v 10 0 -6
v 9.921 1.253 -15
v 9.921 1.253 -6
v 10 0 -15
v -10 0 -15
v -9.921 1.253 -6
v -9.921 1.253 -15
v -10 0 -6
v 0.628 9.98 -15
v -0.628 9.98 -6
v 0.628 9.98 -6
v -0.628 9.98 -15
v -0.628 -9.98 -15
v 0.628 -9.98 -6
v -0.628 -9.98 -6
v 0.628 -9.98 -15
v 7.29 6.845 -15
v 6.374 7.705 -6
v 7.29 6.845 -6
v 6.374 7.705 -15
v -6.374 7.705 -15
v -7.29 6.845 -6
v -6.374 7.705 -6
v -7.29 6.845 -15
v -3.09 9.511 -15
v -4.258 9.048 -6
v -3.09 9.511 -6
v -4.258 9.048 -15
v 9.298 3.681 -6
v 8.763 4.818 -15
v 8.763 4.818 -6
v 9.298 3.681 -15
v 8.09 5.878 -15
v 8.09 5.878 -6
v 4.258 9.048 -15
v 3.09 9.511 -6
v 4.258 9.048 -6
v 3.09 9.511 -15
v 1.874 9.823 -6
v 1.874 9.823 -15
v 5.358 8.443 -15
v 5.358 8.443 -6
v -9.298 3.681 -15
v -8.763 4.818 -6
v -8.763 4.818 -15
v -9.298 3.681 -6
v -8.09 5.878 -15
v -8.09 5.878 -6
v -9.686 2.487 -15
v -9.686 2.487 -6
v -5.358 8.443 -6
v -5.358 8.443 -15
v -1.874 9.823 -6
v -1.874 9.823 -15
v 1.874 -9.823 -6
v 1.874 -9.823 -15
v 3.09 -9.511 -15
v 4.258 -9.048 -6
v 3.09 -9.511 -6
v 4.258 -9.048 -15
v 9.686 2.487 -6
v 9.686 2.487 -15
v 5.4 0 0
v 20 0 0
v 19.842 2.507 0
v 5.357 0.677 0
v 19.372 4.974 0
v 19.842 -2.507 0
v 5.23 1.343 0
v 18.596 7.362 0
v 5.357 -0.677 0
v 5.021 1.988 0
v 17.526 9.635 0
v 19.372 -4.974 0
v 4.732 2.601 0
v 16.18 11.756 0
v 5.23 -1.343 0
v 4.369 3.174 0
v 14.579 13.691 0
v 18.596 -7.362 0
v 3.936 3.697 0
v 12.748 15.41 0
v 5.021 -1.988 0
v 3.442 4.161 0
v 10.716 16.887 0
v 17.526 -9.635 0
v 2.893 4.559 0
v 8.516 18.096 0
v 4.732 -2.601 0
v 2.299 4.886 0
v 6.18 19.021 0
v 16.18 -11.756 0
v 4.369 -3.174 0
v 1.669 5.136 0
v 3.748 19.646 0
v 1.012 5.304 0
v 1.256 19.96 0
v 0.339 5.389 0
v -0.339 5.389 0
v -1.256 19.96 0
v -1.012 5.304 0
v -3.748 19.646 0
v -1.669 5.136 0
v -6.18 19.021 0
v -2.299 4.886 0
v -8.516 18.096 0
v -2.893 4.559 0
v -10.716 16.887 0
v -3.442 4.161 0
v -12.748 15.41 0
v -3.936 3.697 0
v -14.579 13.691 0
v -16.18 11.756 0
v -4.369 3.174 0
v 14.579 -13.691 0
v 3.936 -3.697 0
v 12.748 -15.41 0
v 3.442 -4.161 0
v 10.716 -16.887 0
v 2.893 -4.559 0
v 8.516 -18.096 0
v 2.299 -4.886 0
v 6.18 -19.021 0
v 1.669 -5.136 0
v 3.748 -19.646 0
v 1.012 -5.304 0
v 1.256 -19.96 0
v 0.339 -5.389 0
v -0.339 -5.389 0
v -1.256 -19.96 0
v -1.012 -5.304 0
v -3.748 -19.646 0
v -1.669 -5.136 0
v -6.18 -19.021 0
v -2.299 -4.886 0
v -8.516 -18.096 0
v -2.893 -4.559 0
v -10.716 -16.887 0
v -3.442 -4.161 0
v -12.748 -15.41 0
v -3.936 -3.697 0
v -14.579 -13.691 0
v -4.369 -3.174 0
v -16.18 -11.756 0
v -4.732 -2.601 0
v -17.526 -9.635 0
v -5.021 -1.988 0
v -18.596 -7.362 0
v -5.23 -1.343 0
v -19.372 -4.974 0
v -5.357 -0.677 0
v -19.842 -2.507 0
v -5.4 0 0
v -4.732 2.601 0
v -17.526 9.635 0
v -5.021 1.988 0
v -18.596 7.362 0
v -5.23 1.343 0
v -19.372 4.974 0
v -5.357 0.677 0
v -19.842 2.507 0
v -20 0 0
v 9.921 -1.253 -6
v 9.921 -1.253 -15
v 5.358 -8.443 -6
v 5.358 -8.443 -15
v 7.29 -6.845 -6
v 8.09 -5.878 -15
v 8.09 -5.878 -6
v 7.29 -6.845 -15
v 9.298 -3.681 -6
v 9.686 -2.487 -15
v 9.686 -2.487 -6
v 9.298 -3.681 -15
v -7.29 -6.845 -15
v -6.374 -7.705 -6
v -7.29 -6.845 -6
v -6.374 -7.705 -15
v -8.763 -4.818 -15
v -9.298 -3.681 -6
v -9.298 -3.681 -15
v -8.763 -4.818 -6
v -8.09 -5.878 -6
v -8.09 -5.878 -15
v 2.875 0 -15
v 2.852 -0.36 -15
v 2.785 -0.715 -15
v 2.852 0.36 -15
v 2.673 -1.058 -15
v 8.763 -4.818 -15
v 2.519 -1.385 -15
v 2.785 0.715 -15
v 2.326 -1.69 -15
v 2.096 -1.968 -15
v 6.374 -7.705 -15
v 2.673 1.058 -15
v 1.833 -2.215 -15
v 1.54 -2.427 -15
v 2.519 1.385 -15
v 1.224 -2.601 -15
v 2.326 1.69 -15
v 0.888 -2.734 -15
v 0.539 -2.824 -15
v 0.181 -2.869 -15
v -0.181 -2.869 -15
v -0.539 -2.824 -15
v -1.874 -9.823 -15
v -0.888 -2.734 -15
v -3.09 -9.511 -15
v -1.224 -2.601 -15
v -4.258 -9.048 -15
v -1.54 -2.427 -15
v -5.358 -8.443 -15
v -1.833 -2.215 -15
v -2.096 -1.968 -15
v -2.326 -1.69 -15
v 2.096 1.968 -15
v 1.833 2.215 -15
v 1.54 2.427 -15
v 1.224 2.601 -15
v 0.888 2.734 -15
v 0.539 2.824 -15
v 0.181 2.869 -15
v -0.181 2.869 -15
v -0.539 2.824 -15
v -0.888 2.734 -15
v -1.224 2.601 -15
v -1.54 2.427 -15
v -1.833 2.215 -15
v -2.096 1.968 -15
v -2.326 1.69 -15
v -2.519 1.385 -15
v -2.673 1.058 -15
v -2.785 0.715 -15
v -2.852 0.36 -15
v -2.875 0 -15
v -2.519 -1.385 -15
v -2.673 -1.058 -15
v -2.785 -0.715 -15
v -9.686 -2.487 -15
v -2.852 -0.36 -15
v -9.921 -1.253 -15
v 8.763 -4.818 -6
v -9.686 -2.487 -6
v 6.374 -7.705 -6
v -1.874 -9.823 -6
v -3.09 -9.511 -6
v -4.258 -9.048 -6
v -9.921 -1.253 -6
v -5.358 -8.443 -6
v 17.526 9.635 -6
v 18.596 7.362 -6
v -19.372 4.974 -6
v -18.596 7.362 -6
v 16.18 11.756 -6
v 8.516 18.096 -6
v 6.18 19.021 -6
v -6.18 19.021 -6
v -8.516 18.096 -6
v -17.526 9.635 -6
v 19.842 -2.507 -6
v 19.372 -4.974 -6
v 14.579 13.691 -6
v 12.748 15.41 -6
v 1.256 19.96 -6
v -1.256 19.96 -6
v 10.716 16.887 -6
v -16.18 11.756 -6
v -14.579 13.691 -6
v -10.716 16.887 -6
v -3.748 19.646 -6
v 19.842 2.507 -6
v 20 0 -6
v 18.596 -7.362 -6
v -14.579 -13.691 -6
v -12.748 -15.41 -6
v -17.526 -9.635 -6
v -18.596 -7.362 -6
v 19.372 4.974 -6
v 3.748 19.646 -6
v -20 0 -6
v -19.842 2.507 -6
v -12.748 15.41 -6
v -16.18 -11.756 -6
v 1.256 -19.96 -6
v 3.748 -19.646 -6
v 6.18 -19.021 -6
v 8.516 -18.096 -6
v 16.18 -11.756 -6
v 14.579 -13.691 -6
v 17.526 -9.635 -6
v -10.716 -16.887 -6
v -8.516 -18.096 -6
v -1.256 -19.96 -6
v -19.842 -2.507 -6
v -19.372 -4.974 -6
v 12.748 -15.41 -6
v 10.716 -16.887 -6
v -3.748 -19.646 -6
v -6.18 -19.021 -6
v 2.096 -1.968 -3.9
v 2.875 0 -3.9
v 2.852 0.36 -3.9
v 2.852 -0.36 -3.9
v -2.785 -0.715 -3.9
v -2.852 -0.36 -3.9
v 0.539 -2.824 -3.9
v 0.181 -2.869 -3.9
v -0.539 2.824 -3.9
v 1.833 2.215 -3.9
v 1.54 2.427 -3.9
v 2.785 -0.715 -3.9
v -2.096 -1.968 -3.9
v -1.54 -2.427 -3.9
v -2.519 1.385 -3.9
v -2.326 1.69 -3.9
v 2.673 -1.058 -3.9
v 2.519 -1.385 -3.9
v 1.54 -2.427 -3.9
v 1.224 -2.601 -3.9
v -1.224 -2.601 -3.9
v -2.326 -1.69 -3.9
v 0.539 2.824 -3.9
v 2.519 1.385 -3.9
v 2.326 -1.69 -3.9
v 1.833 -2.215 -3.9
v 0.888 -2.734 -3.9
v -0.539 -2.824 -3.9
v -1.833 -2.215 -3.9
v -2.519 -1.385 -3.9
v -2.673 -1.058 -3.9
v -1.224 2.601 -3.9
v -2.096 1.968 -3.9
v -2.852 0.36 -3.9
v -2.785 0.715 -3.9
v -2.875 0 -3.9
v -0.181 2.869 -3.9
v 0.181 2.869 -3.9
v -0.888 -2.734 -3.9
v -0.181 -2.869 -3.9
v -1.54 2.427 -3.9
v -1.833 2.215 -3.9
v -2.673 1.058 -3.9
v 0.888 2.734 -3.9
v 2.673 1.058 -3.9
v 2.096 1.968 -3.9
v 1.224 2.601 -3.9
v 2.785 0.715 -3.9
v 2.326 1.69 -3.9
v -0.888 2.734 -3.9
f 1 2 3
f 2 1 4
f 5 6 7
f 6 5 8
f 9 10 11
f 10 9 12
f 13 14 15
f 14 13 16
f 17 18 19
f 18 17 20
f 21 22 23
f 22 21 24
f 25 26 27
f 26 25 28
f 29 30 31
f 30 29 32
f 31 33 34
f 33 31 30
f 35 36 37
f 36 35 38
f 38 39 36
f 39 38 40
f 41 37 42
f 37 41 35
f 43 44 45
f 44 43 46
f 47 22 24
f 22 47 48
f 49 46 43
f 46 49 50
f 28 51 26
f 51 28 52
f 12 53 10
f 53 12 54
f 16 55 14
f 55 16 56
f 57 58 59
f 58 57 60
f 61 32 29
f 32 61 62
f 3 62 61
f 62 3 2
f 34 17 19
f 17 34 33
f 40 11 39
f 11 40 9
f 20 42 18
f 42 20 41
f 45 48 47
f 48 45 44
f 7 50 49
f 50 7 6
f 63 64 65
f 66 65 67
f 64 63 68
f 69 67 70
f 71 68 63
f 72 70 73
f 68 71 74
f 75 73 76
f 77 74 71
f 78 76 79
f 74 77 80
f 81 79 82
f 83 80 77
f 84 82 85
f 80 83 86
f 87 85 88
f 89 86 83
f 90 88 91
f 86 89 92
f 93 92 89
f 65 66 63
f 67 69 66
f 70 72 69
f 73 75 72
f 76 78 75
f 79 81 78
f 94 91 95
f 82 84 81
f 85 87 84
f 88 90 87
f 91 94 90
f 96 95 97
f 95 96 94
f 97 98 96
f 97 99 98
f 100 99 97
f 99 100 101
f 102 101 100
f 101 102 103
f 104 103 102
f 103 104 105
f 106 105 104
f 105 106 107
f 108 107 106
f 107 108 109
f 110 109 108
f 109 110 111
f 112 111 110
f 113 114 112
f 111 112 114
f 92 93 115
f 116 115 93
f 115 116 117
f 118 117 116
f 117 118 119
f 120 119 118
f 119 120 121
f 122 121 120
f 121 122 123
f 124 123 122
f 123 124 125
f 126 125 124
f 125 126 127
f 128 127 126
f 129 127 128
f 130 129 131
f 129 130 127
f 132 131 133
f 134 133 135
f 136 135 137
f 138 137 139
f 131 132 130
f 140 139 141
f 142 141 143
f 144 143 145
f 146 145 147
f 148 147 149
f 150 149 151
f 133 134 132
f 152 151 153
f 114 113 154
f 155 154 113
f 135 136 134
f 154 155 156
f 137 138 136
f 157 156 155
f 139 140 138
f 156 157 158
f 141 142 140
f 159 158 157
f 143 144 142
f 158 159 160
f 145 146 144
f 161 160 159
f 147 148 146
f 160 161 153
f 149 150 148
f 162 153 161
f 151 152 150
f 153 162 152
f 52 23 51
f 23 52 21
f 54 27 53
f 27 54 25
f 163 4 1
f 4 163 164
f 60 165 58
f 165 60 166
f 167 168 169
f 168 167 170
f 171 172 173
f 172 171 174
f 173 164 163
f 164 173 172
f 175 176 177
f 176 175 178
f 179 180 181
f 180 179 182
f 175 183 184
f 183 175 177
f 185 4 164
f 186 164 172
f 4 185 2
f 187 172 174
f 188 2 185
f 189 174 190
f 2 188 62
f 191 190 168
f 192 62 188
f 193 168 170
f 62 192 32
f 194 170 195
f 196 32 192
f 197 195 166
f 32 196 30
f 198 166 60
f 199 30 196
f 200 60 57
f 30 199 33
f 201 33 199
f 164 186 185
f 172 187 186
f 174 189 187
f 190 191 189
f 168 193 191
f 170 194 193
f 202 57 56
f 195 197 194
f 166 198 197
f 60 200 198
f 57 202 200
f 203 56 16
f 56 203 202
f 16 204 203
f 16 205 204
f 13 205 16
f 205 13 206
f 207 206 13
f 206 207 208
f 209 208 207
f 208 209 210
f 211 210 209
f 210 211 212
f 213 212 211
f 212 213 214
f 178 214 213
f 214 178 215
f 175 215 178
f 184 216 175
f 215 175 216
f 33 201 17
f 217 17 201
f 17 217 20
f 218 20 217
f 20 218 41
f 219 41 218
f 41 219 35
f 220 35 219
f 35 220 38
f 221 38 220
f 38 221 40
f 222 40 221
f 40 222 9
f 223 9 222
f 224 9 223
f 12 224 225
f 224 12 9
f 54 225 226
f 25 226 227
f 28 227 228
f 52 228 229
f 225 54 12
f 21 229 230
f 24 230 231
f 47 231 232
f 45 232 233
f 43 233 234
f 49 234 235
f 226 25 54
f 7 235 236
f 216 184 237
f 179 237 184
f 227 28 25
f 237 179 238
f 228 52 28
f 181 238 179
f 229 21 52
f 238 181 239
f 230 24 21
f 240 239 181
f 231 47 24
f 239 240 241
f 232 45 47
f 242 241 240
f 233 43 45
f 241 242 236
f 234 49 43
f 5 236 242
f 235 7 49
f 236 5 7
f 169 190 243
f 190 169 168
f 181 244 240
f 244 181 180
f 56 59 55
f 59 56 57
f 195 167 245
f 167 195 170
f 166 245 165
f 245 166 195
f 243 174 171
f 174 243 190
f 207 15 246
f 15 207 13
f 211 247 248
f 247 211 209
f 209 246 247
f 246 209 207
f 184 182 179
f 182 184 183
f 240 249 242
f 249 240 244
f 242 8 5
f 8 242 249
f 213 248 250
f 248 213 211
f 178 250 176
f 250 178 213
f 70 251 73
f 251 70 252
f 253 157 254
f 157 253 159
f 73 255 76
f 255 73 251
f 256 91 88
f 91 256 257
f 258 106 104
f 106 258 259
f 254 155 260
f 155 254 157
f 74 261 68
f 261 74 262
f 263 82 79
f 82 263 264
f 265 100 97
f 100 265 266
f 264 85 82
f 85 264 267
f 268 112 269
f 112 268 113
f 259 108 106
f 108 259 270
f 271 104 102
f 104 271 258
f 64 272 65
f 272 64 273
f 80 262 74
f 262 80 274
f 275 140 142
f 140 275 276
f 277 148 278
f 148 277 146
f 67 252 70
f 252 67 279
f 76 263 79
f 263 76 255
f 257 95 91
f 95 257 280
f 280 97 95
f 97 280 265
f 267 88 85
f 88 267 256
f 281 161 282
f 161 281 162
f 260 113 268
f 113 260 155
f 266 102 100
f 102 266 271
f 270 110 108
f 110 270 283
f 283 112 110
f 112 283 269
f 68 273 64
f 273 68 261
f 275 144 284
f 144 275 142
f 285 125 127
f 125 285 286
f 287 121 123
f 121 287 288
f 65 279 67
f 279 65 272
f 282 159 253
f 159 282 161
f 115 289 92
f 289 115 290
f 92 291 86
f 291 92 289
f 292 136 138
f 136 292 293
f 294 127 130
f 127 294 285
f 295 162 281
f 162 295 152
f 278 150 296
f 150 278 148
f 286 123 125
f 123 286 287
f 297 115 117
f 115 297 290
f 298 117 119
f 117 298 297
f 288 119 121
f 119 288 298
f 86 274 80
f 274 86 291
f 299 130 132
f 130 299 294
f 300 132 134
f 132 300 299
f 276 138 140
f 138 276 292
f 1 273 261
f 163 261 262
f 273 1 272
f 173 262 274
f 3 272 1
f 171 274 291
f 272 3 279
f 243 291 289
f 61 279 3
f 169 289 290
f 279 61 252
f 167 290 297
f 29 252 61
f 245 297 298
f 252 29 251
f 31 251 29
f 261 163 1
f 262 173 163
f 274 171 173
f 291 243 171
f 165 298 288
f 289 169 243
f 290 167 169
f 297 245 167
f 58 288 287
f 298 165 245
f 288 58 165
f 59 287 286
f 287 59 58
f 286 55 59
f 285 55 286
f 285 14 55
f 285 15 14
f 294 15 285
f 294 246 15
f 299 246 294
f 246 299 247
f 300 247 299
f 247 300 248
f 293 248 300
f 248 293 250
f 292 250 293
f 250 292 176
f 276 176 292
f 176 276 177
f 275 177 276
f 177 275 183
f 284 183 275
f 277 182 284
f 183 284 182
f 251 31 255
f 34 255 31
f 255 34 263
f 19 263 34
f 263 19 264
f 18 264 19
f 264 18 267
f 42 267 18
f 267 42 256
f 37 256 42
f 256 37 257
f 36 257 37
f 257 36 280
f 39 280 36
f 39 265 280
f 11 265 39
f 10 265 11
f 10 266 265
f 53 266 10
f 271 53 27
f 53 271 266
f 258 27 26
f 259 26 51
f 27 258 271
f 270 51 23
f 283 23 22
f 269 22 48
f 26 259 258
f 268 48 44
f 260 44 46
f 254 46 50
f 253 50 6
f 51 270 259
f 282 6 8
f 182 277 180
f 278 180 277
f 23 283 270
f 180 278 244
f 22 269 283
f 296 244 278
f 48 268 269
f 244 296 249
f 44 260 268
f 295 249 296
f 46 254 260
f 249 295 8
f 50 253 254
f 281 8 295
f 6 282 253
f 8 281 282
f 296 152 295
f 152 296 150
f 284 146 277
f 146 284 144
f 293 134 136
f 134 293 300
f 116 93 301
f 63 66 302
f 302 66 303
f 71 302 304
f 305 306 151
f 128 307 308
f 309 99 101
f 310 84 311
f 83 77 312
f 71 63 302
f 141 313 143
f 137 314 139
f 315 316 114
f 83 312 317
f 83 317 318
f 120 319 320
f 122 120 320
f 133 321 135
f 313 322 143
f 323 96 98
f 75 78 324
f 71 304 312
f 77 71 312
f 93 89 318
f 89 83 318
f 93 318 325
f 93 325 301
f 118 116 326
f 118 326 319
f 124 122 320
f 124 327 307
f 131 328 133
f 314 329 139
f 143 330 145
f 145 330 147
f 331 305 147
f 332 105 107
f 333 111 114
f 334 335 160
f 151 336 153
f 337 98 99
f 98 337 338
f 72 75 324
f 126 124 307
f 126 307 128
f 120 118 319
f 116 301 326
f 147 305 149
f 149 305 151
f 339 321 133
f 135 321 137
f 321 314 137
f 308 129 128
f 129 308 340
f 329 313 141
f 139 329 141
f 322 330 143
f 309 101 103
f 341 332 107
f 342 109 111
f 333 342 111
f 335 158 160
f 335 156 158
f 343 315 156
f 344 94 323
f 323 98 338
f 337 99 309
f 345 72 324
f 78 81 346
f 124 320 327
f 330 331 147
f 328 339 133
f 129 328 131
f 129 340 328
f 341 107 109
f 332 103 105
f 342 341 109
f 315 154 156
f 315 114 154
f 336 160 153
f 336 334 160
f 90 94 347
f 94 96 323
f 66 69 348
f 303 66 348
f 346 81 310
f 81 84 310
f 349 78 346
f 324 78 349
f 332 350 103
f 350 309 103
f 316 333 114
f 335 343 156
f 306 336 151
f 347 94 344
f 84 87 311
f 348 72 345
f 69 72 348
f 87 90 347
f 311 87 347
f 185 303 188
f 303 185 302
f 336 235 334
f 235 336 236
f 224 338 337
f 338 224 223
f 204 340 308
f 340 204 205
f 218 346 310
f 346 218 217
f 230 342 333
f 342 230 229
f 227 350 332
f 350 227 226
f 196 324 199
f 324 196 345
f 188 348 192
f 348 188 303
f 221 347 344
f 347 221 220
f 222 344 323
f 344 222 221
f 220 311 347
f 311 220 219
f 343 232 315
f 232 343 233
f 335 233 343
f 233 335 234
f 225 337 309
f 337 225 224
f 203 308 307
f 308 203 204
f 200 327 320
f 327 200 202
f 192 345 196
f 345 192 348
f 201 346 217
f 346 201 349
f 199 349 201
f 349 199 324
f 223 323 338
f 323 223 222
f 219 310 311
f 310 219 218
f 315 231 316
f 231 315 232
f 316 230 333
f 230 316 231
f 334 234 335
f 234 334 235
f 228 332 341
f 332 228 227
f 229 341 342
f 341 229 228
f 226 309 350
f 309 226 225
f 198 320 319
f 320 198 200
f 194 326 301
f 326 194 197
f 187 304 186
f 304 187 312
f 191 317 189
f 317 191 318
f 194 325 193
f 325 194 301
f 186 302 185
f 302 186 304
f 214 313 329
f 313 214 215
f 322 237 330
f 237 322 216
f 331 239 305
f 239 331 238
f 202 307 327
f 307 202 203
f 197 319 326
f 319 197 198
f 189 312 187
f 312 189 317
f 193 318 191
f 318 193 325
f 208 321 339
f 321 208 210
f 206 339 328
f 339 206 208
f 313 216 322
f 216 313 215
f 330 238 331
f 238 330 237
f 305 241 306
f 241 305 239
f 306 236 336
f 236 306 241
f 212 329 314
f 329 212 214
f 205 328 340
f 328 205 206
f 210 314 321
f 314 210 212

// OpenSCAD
$fn = 50;


difference() {
	union() {
		translate(v = [0, 0, -15.0000000000]) {
			cylinder(h = 15, r = 10.0000000000);
		}
		translate(v = [0, 0, -6.0000000000]) {
			cylinder(h = 6, r = 20.0000000000);
		}
	}
	union() {
		translate(v = [0, 0, 0]) {
			rotate(a = [0, 0, 0]) {
				difference() {
					union() {
						#translate(v = [0, 0, -15.0000000000]) {
							cylinder(h = 15, r = 2.6000000000);
						}
						#translate(v = [0, 0, -3.9000000000]) {
							cylinder(h = 3.9000000000, r1 = 2.8750000000, r2 = 5.4000000000);
						}
						#translate(v = [0, 0, -15.0000000000]) {
							cylinder(h = 15, r = 2.8750000000);
						}
						#translate(v = [0, 0, -15.0000000000]) {
							cylinder(h = 15, r = 2.6000000000);
						}
					}
					union();
				}
			}
		}
	}
}
